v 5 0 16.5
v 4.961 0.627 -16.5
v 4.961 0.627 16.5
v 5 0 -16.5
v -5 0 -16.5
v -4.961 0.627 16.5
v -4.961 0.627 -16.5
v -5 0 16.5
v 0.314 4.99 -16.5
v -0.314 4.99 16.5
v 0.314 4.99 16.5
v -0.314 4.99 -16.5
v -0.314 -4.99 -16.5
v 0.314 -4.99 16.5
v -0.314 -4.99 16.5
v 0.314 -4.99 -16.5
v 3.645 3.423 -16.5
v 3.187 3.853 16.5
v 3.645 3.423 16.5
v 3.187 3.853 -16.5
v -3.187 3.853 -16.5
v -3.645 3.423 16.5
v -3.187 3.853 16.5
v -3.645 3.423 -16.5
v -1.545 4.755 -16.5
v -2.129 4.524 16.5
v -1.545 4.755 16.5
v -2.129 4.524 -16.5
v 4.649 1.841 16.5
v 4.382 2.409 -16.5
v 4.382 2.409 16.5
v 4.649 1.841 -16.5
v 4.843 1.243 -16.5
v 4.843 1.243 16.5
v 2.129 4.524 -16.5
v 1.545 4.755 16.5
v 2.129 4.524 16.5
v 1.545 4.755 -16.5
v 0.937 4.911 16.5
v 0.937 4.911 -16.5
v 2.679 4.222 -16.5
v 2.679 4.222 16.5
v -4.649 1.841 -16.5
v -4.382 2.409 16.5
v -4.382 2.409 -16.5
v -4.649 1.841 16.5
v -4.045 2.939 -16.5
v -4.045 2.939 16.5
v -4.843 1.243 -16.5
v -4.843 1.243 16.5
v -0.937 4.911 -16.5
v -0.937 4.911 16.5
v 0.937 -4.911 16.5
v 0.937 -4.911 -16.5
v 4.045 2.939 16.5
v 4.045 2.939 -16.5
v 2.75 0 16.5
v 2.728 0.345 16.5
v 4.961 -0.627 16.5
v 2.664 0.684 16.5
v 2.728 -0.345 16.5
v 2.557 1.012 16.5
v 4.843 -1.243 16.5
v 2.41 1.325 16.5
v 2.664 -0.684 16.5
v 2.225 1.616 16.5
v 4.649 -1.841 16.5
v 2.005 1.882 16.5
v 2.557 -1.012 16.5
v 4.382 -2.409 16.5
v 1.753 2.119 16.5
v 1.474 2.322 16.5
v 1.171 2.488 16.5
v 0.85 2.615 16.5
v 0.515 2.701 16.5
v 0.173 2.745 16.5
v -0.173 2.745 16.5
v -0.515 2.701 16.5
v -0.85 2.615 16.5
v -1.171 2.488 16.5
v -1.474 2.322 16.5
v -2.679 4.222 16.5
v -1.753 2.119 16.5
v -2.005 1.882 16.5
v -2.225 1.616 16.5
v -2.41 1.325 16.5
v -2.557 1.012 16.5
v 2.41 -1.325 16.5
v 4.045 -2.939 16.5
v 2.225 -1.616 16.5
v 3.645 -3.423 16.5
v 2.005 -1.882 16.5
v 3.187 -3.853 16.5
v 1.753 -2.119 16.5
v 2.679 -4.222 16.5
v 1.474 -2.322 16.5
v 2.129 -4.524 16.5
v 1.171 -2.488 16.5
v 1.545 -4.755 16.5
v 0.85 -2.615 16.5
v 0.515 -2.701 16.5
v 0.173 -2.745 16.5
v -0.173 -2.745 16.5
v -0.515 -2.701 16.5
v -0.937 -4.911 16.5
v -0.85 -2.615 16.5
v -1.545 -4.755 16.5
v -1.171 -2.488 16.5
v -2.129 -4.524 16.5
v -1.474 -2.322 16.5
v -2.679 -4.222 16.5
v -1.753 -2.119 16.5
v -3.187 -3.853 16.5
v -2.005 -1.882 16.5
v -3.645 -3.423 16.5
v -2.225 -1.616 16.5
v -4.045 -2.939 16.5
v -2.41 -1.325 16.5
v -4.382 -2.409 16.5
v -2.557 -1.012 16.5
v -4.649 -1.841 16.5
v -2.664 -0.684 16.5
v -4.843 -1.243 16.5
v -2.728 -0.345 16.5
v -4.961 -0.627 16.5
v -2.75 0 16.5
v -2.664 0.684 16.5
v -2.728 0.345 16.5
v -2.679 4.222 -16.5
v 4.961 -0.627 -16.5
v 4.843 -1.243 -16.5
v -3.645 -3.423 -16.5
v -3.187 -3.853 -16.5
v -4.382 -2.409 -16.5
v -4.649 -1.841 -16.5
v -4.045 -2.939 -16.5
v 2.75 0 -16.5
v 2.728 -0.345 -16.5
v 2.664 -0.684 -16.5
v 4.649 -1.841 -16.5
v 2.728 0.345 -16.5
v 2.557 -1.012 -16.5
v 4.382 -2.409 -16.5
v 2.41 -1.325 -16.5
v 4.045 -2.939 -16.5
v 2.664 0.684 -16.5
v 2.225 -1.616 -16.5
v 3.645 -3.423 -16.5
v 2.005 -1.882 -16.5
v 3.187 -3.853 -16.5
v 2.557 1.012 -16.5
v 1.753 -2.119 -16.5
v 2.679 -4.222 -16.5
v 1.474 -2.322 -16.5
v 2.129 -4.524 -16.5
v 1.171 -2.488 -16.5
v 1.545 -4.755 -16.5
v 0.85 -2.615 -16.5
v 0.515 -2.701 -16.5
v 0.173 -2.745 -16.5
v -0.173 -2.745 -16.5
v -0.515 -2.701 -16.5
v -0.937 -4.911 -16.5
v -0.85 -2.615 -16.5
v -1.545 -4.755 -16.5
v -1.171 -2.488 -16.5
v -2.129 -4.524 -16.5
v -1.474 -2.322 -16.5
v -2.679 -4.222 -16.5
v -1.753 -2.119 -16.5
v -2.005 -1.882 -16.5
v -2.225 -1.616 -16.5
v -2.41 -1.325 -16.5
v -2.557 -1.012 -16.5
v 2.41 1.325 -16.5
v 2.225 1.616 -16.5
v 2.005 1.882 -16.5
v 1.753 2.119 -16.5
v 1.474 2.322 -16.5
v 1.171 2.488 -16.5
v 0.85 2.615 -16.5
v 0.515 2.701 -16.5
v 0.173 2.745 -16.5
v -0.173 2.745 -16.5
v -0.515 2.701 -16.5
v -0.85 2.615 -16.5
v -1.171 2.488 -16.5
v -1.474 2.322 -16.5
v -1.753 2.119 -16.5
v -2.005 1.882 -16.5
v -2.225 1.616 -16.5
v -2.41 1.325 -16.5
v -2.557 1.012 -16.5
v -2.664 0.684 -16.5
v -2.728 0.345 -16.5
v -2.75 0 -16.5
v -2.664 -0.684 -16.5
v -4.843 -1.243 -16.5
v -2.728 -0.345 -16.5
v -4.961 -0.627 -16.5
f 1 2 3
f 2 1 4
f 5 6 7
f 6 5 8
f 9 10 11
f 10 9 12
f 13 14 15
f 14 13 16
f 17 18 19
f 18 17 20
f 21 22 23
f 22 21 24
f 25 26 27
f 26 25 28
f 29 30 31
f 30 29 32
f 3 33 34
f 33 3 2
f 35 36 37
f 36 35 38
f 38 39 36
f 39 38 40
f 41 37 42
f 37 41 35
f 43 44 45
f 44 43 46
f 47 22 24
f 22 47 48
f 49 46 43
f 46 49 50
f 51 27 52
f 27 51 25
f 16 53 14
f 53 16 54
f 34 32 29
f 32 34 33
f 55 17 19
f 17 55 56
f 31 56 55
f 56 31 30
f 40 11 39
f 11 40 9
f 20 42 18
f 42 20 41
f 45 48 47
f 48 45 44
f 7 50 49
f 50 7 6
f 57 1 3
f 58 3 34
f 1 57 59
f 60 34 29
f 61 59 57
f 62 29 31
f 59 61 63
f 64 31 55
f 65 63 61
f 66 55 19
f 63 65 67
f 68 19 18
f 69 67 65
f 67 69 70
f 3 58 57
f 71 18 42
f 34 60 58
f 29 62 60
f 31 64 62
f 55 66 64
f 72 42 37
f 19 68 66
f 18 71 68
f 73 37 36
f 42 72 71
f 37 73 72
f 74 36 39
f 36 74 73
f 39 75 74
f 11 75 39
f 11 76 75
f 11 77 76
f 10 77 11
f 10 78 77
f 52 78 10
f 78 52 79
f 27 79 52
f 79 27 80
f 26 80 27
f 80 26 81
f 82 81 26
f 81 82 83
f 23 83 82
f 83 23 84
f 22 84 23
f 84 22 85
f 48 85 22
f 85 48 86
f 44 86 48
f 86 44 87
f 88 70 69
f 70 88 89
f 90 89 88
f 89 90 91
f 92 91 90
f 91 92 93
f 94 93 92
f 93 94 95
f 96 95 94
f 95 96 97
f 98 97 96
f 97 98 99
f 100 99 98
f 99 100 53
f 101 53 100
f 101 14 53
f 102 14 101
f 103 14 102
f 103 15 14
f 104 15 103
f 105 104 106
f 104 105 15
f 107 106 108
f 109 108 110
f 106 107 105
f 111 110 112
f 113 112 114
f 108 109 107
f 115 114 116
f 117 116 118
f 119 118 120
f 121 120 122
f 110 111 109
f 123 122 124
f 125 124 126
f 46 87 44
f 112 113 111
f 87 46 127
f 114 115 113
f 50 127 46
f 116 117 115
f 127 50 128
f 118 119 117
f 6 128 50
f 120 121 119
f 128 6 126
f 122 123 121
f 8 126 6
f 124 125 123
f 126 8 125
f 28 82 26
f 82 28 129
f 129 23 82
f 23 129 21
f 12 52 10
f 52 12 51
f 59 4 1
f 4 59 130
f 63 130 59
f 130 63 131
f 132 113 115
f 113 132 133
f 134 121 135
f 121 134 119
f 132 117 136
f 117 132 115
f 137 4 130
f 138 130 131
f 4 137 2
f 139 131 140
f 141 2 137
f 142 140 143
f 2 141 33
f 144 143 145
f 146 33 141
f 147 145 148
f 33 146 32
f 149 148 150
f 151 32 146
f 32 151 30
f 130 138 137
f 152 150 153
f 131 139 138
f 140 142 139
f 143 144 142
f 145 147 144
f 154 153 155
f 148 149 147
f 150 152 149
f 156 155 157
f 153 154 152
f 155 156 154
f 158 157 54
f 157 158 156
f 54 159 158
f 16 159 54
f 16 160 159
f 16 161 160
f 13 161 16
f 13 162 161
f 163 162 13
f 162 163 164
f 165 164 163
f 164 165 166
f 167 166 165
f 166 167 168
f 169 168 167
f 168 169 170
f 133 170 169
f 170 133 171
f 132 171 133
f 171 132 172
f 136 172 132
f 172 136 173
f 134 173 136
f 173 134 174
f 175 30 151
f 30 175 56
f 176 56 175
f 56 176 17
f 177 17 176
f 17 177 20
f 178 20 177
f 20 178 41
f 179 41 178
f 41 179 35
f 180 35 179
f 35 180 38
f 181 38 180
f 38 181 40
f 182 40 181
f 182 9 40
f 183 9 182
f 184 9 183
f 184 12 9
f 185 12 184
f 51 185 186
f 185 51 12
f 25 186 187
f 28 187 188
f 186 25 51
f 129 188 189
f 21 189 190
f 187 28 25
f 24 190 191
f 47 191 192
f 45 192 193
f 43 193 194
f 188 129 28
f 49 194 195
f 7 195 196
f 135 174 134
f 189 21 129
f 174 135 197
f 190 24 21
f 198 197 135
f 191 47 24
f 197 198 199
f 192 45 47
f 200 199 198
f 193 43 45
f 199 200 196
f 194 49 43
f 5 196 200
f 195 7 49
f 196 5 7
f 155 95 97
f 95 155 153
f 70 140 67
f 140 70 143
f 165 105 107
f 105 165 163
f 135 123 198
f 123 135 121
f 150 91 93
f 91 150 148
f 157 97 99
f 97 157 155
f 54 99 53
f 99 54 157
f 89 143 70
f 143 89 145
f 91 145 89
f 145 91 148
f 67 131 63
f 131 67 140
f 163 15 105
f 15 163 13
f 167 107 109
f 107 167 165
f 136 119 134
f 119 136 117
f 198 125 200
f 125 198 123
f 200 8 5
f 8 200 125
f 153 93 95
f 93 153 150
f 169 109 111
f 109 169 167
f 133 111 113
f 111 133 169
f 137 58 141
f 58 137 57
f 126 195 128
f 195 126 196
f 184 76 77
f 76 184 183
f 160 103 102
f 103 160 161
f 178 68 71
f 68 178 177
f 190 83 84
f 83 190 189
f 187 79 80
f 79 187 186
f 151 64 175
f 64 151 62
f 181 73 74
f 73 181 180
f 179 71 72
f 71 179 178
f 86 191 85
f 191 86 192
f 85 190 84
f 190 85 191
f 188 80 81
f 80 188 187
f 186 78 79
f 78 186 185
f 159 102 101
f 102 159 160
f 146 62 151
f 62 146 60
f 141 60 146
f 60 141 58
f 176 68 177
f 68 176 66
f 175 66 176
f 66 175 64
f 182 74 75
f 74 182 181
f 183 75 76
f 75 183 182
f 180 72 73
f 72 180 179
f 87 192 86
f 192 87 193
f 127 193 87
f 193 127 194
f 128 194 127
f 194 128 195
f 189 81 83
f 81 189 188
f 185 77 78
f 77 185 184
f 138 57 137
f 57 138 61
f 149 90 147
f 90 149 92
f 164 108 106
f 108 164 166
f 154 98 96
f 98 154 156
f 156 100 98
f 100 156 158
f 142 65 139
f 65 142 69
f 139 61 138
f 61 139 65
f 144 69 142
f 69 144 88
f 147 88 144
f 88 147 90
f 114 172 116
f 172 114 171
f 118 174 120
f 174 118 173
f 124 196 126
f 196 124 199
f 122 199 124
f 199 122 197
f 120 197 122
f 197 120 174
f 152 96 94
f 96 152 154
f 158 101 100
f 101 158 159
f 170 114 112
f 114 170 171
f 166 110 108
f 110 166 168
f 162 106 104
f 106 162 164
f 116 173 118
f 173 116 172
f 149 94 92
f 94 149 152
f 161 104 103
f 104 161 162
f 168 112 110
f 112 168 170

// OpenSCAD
$fn = 50;


difference() {
	union() {
		translate(v = [0, 0, -16.5000000000]) {
			cylinder(h = 33, r = 5.0000000000);
		}
	}
	union() {
		translate(v = [0, 0, -100.0000000000]) {
			cylinder(h = 200, r = 2.7500000000);
		}
	}
}
